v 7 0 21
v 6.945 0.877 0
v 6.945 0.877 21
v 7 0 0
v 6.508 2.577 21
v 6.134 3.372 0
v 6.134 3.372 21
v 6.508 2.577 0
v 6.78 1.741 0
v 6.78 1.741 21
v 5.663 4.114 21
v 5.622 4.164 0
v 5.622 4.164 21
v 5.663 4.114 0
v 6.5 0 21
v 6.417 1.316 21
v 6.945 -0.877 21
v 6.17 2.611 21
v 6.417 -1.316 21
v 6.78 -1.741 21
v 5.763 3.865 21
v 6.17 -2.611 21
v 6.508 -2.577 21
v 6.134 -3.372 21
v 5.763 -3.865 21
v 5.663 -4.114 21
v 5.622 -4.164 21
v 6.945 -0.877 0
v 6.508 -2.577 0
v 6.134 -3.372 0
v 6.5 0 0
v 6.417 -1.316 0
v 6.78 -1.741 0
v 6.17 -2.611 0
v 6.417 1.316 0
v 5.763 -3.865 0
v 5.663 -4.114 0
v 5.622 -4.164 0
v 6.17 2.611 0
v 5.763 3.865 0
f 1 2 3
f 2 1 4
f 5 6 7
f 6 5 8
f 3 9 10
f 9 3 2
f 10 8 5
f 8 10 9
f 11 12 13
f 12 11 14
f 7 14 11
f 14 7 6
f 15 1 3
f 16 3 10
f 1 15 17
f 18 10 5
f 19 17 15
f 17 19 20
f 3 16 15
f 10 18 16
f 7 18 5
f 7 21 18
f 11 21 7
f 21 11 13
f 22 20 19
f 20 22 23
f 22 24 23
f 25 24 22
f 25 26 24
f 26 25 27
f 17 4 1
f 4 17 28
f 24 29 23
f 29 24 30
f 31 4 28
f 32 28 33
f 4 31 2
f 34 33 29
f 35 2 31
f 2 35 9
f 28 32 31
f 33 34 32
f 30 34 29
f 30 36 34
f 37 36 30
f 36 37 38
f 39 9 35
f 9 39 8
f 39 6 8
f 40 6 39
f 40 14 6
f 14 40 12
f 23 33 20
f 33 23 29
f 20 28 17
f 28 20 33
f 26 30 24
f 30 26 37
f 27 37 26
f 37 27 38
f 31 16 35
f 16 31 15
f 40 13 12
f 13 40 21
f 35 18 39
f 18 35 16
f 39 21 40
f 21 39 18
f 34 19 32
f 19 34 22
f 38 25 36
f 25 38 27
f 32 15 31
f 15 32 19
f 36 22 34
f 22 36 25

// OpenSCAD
$fn = 50;


difference() {
	union() {
		cylinder(h = 21, r = 7.0000000000);
		translate(v = [-7.0000000000, 0, 0]) {
			cylinder(h = 21, r = 7.0000000000);
		}
	}
	union() {
		cylinder(h = 21, r = 3.2500000000);
		cylinder(h = 21, r = 1.8000000000);
		cylinder(h = 21, r = 1.8000000000);
		cylinder(h = 21, r = 1.8000000000);
		translate(v = [-11.5000000000, 0, 0]) {
			hull() {
				translate(v = [-3.7500000000, 0.0000000000, 0]) {
					cylinder(h = 21, r = 7.5000000000);
				}
				translate(v = [3.7500000000, 0.0000000000, 0]) {
					cylinder(h = 21, r = 7.5000000000);
				}
				translate(v = [-3.7500000000, -0.0000000000, 0]) {
					cylinder(h = 21, r = 7.5000000000);
				}
				translate(v = [3.7500000000, -0.0000000000, 0]) {
					cylinder(h = 21, r = 7.5000000000);
				}
			}
		}
		translate(v = [-4.0000000000, 0, 0.0000000000]) {
			cylinder(h = 21, r = 10.5000000000);
		}
	}
}
